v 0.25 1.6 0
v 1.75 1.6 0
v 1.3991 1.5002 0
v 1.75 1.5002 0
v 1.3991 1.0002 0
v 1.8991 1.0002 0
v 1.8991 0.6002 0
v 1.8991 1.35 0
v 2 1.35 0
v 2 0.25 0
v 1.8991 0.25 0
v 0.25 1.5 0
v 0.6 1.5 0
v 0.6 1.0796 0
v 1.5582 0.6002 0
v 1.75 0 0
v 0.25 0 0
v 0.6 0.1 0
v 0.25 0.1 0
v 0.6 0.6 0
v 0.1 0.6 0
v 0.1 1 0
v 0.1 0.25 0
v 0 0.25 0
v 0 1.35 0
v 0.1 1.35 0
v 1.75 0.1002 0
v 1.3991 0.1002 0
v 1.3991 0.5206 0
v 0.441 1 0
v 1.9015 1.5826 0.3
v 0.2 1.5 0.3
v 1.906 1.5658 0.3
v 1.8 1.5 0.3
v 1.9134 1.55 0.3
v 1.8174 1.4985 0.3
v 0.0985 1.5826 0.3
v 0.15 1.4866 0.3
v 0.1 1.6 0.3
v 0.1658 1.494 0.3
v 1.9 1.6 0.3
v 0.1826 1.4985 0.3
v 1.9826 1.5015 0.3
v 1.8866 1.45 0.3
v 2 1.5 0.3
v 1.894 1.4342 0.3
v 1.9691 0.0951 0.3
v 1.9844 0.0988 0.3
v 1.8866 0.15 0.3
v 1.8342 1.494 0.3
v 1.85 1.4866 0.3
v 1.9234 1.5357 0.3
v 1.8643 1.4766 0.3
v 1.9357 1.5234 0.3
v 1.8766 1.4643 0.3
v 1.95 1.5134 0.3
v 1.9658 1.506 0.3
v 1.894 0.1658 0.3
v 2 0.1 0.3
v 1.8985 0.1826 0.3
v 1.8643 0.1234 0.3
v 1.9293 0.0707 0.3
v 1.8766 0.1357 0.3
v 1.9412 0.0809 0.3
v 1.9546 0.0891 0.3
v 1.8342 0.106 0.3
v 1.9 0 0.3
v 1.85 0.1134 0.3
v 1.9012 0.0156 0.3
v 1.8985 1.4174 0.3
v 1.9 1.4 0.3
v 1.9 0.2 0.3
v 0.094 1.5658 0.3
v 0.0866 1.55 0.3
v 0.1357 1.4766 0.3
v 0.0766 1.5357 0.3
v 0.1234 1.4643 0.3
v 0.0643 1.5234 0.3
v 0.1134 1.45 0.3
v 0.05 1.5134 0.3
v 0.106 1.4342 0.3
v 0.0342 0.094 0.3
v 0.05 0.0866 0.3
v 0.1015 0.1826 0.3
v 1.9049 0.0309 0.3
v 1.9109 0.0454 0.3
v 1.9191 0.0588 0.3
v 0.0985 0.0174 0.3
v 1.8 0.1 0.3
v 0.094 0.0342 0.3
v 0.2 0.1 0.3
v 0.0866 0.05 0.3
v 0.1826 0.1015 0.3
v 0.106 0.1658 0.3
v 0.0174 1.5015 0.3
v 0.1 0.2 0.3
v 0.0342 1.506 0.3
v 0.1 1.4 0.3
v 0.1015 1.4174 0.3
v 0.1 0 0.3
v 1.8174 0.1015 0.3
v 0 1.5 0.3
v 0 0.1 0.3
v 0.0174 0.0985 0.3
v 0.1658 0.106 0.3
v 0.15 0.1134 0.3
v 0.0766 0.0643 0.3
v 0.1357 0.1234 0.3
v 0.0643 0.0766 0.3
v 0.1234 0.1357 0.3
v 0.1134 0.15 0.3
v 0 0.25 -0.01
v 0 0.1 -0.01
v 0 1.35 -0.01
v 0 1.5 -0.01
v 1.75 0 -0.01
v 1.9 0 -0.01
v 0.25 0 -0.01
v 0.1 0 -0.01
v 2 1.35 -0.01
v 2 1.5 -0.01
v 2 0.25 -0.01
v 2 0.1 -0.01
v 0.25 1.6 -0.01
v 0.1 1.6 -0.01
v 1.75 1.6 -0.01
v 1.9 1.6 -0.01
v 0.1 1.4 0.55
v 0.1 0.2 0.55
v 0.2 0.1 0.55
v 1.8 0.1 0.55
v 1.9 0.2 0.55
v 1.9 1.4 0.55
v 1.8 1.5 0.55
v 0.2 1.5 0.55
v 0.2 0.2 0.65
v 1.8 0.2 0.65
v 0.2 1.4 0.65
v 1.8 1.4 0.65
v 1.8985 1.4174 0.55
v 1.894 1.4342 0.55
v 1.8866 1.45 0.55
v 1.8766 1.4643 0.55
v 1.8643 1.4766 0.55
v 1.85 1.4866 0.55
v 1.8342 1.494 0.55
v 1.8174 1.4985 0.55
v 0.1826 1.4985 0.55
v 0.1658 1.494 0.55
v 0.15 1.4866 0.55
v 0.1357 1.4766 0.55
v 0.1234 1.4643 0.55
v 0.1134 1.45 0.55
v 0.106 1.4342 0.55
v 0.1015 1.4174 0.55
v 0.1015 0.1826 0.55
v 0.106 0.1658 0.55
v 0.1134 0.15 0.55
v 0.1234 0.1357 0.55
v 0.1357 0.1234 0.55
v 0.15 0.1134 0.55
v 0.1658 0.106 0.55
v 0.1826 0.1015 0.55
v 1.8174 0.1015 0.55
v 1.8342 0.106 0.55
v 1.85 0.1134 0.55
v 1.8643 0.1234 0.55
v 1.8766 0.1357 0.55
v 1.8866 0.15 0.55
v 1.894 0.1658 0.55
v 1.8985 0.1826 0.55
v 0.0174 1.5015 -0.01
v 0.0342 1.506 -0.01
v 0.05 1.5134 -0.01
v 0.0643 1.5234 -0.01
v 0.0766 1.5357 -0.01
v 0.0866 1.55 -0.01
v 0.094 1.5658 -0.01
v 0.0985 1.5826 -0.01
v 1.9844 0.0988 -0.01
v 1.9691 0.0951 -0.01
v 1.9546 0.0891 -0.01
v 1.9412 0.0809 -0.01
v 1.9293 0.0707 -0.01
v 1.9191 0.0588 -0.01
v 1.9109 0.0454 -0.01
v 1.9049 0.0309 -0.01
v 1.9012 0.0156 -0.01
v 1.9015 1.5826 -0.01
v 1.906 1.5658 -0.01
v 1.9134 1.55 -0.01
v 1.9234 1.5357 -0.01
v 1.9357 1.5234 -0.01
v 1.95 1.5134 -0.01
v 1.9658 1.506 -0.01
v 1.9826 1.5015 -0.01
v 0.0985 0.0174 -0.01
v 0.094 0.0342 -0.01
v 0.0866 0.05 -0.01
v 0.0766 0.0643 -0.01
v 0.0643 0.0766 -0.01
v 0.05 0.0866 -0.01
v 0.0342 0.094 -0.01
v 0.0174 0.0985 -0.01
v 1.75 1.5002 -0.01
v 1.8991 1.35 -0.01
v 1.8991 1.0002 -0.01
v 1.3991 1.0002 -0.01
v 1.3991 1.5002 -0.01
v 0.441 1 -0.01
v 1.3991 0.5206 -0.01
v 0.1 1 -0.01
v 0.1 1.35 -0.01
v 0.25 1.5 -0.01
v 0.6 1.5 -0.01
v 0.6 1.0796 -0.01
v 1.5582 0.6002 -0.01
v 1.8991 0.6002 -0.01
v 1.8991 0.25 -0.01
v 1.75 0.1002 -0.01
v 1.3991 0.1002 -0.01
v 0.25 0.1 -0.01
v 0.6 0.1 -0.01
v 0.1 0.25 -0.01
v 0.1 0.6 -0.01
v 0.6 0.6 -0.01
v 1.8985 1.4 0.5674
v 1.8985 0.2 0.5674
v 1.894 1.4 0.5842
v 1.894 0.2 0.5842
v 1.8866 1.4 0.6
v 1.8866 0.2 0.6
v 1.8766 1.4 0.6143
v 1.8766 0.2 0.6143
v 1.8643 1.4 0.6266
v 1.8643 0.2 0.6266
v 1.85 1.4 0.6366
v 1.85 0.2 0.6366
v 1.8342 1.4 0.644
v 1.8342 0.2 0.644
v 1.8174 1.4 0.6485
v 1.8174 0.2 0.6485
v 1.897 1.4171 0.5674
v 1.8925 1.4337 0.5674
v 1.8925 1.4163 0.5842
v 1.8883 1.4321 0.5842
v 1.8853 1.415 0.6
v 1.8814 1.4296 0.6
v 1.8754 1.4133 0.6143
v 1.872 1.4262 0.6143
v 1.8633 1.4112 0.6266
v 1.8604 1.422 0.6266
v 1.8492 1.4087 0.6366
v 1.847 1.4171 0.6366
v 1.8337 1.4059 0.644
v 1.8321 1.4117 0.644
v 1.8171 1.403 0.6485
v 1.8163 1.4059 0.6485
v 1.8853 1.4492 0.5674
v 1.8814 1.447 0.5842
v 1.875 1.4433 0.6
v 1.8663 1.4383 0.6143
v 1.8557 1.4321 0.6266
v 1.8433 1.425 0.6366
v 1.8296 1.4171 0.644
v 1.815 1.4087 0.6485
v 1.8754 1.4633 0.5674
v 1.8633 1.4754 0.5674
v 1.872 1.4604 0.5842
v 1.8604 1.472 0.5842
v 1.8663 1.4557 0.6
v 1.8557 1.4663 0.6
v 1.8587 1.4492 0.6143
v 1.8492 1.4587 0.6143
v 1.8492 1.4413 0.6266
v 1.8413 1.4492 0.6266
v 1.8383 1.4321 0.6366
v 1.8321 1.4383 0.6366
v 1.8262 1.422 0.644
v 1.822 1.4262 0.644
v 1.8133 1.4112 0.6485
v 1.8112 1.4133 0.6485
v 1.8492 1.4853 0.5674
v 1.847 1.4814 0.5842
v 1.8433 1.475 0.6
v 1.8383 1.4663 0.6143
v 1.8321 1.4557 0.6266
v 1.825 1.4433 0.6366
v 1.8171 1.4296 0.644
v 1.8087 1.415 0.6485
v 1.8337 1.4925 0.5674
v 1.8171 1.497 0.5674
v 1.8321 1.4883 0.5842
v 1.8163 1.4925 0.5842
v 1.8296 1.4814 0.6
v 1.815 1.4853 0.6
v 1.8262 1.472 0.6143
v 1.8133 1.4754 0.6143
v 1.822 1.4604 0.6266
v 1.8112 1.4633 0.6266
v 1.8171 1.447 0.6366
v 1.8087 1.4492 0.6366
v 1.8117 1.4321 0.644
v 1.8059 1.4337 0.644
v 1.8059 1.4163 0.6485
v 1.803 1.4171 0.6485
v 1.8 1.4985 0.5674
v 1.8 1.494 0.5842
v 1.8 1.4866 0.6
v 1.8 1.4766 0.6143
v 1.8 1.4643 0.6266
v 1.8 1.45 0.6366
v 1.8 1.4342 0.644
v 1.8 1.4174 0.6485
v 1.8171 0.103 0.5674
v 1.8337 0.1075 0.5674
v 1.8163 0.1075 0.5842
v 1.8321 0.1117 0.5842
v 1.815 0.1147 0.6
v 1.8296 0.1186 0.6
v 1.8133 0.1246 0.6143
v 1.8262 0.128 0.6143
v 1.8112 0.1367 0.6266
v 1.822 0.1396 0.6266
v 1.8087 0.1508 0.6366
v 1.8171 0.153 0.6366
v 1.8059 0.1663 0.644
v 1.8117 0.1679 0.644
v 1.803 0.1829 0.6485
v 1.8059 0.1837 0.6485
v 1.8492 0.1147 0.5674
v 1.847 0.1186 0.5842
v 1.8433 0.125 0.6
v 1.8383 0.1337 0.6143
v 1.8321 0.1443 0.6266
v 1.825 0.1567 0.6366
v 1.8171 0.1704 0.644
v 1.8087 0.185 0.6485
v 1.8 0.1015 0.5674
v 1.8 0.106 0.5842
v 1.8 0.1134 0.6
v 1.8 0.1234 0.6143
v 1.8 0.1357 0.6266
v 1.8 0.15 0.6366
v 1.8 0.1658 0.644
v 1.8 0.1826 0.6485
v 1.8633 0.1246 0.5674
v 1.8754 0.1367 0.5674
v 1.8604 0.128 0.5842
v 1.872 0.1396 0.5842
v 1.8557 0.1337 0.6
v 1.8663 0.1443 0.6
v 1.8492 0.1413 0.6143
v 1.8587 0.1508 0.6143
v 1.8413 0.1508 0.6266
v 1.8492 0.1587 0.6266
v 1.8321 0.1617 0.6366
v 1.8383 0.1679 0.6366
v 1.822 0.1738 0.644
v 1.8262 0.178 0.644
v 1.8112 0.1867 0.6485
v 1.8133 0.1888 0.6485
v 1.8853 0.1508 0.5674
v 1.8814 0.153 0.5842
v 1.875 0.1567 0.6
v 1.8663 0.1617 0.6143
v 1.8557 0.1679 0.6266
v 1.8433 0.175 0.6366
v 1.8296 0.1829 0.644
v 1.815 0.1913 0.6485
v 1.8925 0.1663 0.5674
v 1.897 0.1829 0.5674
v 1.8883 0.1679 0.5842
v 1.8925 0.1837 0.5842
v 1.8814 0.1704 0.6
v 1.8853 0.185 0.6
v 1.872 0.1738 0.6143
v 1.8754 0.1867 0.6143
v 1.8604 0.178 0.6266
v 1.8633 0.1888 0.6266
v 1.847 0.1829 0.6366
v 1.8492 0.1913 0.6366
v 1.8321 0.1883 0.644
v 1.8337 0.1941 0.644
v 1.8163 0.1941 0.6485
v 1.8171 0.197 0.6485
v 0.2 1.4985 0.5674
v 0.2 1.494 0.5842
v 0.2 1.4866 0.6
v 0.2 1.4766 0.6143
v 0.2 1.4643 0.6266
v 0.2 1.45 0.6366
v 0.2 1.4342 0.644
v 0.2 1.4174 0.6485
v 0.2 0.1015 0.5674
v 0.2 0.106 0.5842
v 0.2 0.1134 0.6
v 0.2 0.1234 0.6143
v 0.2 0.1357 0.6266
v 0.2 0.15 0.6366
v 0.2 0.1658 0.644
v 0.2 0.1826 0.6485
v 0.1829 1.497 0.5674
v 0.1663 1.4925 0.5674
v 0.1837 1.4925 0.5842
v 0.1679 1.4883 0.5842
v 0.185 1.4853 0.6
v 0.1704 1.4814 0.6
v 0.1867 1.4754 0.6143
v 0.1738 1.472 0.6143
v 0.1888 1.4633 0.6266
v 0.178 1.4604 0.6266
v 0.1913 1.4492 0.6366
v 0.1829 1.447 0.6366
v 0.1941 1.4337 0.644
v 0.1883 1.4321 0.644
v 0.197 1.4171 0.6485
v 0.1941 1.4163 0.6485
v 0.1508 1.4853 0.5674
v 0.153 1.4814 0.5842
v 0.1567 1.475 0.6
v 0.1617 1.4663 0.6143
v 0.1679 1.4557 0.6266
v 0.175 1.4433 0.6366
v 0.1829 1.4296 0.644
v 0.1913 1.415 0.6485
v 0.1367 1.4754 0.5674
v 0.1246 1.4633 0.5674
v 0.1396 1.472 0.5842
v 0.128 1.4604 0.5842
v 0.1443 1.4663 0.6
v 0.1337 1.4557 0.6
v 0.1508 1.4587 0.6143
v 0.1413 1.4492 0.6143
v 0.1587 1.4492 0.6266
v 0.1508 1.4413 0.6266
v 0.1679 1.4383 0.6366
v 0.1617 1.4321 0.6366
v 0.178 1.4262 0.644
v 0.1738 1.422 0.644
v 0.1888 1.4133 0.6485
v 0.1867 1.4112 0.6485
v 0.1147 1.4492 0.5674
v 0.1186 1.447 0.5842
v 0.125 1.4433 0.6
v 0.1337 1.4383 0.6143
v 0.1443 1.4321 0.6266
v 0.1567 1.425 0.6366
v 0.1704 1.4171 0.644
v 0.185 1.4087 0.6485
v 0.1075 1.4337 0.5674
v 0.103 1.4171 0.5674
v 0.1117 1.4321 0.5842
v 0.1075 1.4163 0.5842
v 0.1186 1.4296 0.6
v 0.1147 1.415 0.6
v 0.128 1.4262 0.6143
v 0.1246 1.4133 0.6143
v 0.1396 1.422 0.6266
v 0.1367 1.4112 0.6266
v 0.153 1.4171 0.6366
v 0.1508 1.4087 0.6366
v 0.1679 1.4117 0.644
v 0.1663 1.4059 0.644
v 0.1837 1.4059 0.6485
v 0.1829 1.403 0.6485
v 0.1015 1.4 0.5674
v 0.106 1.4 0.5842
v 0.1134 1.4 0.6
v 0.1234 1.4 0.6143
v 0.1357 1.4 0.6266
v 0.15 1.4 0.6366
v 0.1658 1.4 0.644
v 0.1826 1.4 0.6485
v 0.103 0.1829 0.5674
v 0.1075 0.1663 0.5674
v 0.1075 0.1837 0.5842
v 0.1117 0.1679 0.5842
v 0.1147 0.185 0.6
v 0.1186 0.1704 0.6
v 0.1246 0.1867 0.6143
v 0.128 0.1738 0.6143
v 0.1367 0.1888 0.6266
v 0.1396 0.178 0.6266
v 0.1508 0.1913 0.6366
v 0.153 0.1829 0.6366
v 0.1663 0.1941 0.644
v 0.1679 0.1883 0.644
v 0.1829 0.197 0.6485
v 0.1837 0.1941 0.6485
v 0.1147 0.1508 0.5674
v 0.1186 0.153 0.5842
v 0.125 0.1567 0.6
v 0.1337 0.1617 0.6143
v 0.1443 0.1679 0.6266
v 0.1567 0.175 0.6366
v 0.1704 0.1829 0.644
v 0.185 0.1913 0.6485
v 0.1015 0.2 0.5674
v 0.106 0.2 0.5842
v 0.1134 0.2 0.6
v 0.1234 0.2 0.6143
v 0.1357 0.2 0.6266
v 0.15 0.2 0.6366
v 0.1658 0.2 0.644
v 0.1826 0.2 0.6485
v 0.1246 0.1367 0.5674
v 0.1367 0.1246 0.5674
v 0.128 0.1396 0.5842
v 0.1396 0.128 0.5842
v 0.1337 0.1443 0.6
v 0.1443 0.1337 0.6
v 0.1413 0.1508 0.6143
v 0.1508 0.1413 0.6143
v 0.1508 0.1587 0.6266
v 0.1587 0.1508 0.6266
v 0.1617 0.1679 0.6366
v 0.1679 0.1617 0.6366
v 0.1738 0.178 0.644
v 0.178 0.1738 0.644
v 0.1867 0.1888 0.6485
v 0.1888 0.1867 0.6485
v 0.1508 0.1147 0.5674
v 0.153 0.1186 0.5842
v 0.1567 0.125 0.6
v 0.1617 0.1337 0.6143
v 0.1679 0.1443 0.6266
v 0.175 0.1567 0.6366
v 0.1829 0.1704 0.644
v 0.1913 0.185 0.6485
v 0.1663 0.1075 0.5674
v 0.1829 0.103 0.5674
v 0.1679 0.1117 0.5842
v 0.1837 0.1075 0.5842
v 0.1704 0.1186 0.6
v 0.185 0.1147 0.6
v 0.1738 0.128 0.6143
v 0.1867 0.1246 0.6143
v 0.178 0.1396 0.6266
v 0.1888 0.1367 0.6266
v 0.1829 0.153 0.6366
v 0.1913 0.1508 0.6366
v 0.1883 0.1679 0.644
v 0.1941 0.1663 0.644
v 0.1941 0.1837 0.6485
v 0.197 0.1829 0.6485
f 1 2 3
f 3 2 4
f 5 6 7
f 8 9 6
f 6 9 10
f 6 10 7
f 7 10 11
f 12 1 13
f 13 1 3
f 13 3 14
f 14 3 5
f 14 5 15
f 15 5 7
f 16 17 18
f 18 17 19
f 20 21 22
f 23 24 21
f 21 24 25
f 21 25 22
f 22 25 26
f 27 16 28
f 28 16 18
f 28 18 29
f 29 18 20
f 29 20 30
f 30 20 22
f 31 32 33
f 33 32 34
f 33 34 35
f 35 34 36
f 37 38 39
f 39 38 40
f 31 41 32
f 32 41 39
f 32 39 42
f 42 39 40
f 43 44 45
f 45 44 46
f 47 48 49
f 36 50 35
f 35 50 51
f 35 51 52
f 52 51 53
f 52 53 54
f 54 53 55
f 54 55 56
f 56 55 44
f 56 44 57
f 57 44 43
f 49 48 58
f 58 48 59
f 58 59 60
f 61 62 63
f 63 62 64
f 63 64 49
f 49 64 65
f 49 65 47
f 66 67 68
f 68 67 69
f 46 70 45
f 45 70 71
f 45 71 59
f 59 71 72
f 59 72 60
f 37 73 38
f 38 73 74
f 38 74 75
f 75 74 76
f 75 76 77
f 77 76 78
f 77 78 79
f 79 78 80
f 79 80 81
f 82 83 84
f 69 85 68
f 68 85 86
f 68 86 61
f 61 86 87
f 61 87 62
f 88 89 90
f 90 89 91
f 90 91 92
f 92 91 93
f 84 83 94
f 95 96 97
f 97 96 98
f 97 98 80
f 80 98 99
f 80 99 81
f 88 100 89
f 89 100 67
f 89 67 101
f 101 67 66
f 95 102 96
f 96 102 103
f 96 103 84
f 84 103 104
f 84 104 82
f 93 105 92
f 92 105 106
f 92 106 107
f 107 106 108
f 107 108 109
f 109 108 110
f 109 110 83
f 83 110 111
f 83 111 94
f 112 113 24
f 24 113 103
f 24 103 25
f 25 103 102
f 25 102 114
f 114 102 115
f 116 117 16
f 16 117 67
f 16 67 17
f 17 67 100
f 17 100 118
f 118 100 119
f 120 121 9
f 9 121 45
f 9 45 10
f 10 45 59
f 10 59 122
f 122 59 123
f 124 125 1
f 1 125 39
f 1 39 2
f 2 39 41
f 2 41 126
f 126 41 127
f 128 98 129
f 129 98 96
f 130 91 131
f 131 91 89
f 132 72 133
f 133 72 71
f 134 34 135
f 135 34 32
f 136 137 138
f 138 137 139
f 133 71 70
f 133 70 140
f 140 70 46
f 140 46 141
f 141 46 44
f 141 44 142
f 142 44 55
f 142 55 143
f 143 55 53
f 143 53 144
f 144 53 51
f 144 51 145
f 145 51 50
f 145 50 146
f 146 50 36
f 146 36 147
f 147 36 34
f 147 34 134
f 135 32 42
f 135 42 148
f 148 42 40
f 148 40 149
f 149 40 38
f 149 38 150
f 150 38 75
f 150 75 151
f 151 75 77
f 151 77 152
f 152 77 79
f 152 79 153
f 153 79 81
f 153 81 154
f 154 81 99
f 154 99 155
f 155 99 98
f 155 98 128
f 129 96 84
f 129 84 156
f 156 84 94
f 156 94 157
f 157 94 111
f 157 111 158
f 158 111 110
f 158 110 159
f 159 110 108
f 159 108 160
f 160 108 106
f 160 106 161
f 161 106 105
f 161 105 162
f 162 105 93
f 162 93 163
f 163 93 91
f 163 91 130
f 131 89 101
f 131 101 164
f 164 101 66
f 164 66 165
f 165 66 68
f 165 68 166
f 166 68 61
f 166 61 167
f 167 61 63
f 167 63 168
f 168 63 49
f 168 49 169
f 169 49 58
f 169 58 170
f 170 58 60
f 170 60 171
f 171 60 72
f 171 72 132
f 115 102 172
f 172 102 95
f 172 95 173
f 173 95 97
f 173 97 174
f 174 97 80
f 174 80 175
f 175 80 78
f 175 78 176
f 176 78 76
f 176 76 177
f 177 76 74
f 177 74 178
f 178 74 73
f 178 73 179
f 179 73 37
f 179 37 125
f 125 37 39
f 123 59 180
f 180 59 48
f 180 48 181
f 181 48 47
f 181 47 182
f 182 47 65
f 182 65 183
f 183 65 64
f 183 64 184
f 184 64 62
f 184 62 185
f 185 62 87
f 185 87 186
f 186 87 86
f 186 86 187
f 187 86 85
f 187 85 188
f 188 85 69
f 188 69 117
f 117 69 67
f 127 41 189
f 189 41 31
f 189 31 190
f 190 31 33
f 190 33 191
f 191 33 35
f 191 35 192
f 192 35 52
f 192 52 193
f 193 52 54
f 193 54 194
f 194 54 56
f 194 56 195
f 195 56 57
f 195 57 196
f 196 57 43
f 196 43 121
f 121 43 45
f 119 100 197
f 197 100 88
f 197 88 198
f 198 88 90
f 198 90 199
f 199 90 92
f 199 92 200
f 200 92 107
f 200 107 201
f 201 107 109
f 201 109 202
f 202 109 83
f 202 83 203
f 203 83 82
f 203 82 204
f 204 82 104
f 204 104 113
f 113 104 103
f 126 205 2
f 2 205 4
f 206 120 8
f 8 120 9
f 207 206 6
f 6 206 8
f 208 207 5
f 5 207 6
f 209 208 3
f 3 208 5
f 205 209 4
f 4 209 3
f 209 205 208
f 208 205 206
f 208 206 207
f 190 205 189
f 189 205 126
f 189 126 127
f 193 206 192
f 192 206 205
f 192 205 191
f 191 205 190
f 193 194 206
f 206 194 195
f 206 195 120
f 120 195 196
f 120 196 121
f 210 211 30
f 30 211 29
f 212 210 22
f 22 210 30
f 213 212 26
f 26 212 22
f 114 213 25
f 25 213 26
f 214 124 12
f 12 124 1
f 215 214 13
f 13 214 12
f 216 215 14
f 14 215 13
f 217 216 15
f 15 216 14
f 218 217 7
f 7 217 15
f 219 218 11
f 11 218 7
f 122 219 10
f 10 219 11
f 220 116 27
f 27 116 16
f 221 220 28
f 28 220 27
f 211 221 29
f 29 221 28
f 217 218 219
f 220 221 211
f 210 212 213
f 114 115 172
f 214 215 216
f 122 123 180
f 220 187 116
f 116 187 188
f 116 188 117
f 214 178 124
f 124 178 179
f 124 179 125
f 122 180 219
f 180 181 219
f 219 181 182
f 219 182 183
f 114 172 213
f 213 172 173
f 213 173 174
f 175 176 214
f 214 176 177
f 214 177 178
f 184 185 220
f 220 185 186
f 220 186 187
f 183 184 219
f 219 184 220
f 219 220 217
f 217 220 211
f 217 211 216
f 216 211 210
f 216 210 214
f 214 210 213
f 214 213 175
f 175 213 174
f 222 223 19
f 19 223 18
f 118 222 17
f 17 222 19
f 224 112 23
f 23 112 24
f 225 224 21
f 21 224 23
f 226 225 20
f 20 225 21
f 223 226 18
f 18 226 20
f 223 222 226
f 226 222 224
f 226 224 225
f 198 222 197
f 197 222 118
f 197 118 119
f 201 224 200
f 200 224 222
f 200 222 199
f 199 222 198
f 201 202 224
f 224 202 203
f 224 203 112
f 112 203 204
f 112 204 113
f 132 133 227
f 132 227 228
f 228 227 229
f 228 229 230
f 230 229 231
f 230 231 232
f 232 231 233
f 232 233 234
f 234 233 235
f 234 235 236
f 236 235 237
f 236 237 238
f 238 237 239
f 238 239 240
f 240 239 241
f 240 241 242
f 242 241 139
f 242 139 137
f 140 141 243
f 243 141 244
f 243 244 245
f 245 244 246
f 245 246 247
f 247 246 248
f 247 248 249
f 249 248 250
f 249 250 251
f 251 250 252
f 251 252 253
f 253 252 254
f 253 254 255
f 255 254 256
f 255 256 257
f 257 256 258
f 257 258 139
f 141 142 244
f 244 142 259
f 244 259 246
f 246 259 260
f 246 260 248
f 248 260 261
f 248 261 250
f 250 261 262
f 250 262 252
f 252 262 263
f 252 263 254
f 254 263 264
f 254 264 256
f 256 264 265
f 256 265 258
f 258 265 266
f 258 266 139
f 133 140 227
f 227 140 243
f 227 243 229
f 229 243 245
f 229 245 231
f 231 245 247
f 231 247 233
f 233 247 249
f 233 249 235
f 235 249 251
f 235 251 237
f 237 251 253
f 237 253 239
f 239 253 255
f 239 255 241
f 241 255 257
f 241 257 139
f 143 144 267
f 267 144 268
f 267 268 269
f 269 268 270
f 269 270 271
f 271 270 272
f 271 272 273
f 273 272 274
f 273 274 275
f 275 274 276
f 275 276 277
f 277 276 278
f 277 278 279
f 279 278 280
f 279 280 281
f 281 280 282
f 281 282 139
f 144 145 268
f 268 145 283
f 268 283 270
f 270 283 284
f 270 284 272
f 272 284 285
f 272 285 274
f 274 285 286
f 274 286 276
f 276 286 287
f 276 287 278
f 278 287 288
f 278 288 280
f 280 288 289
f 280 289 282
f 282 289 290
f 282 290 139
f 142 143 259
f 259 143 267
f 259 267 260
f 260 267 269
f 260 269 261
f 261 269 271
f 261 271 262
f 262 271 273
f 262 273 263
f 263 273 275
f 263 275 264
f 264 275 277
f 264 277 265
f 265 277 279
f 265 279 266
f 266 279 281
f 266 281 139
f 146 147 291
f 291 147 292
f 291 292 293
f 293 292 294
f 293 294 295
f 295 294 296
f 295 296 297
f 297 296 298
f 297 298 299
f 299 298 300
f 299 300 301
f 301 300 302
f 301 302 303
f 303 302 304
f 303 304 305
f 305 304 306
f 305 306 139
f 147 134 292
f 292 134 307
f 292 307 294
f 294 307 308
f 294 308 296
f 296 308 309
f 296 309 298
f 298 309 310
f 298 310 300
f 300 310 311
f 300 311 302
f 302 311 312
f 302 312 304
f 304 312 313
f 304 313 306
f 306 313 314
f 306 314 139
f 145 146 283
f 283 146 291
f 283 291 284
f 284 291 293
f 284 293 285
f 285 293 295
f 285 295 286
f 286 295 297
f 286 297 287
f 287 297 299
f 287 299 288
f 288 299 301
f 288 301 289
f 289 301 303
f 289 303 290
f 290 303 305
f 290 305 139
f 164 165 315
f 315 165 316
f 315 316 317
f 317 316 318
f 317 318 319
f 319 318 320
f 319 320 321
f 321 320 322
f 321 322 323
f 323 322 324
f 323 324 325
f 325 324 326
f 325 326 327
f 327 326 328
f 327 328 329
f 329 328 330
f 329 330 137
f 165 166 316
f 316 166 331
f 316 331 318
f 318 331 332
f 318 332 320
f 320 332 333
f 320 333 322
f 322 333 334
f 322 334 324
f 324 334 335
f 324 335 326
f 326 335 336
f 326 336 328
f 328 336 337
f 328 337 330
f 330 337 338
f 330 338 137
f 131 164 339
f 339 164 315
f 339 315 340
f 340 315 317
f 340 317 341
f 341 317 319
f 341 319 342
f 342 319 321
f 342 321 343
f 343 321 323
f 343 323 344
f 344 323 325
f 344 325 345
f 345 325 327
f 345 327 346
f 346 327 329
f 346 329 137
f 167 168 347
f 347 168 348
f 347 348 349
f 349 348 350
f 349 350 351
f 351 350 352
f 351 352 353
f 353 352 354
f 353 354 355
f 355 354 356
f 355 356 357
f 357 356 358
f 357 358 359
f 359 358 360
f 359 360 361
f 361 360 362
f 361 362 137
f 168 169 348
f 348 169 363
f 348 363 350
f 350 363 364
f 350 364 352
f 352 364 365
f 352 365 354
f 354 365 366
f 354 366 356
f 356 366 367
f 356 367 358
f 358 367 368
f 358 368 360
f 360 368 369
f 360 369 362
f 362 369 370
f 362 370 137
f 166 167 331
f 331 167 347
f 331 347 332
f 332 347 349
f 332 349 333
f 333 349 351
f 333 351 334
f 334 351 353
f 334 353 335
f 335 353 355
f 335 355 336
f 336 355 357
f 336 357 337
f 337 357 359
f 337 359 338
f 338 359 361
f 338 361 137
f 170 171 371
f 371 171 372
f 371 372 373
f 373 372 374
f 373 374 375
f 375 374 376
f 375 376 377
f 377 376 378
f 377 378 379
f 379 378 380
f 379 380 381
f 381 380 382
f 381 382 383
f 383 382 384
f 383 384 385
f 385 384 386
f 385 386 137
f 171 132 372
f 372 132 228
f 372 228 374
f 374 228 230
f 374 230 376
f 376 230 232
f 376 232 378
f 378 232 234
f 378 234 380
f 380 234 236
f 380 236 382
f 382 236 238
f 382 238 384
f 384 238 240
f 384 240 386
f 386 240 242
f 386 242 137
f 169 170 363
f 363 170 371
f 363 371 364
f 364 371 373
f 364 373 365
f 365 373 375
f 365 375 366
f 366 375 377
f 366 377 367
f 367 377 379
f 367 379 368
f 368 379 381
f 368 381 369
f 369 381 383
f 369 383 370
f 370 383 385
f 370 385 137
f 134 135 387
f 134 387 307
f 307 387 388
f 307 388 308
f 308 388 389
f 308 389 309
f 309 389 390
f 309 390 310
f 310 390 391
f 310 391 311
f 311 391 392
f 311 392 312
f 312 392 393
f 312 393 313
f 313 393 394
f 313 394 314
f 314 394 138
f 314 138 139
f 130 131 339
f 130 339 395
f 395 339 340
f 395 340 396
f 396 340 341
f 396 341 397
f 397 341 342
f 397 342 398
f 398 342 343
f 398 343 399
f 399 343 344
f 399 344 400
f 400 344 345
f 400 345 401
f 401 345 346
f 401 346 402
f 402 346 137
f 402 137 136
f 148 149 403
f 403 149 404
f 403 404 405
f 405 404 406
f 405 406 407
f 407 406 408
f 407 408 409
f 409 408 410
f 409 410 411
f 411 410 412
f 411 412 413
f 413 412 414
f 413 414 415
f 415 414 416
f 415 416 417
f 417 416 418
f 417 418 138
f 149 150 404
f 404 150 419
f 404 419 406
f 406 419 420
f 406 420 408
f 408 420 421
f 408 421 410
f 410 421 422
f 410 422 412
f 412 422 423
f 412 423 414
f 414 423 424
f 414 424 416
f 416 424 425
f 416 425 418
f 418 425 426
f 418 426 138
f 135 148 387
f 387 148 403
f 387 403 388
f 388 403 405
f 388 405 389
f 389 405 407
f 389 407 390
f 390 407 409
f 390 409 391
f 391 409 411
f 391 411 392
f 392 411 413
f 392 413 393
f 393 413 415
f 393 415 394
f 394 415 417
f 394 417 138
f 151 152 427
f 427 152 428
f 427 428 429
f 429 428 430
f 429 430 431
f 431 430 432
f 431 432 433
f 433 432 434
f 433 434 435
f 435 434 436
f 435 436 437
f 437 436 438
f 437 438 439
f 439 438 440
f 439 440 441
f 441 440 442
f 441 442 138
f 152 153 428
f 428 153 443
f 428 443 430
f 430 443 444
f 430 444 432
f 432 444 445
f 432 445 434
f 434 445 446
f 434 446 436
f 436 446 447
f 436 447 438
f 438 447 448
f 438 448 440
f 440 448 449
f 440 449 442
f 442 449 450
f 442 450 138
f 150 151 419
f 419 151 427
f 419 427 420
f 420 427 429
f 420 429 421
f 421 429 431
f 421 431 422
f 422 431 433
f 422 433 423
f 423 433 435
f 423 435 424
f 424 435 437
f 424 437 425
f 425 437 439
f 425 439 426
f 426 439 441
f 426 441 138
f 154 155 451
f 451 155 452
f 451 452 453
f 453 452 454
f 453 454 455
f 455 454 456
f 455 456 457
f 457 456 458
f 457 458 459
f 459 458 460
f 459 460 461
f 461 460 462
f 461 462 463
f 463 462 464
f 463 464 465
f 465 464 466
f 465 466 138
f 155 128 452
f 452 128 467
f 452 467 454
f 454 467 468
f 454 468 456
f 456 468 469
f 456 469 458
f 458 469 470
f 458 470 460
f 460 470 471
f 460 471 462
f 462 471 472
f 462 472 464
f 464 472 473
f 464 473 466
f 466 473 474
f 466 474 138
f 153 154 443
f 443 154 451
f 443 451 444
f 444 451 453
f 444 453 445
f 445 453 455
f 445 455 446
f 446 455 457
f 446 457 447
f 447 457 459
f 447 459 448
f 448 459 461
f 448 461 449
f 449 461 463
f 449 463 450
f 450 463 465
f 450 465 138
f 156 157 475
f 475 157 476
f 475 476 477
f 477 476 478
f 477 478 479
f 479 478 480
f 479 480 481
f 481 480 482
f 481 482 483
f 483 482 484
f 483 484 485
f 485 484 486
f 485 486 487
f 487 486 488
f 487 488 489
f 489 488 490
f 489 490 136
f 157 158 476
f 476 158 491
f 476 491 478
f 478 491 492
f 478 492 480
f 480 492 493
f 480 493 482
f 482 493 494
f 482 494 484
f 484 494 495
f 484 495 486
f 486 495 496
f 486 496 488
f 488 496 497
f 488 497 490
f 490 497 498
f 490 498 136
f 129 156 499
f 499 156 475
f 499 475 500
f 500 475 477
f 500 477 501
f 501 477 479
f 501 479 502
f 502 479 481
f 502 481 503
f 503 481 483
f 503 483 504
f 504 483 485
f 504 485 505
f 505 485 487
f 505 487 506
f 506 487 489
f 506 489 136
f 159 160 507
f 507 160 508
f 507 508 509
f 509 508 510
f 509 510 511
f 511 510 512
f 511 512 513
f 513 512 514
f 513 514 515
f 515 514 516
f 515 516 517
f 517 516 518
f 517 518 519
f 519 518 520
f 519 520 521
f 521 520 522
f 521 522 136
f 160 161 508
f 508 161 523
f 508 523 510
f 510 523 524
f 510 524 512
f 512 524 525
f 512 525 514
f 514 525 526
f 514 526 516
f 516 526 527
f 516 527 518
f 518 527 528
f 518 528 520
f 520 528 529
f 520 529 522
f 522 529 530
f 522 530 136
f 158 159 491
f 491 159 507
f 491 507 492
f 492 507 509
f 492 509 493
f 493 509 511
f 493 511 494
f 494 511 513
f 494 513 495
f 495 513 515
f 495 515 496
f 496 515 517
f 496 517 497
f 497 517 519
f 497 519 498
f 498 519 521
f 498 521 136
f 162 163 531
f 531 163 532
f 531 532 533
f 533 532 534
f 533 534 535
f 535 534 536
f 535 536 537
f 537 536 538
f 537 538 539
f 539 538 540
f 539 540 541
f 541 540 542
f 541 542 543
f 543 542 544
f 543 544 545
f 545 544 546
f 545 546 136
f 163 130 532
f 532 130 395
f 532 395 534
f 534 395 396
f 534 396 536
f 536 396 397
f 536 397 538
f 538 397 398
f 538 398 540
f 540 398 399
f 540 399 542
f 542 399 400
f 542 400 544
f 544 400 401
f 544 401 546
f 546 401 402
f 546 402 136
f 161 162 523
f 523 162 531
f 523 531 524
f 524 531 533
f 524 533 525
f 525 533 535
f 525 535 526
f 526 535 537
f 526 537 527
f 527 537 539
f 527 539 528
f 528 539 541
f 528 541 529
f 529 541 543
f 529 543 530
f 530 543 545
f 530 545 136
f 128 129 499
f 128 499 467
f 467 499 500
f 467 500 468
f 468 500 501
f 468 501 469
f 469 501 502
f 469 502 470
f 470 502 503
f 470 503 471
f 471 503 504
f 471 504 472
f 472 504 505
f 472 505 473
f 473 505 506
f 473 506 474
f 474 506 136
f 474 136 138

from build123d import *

# Parameters (mm, degrees)
SKETCH1_W           = 2
SKETCH1_H           = 1.6
BOSS_EXTRUDE1_DEPTH = 0.3
SKETCH2_W           = 1.8
SKETCH2_H           = 1.4
BOSS_EXTRUDE2_DEPTH = 0.35
FILLET1_R           = 0.1
CUT_EXTRUDE1_DEPTH  = 1.3
SKETCH4_W           = 0.5
SKETCH4_H           = 0.5
BOSS_EXTRUDE3_DEPTH = 0.01
FILLET2_R           = 0.1


with BuildPart() as part:
    # Sketch1 → Boss-Extrude1 (new body)
    with BuildSketch(Plane.XY):
        with Locations((1, 0.8)):
            Rectangle(SKETCH1_W, SKETCH1_H)
    extrude(amount=BOSS_EXTRUDE1_DEPTH)

    # Sketch2 → Boss-Extrude2 (add)
    with BuildSketch(Plane.XY.offset(0.3)):
        with Locations((1, 0.8)):
            Rectangle(SKETCH2_W, SKETCH2_H)
    extrude(amount=BOSS_EXTRUDE2_DEPTH)

    # Fillet1
    fillet1_edges = [part.edges().sort_by_distance(p)[0] for p in [
        (0.1, 1.5, 0.475),
        (0.1, 0.1, 0.475),
        (1.9, 0.1, 0.475),
        (1.9, 1.5, 0.475),
    ]]
    fillet(fillet1_edges, radius=FILLET1_R)

    # Sketch3 → Cut-Extrude1 (cut, through all)
    with BuildSketch(Plane.XY.offset(0.3)):
        with BuildLine():
            Line((0, 1.6), (0.1, 1.6))
            ThreePointArc((0.1, 1.6), (0.070710678, 1.529289322), (0, 1.5))
            Line((0, 1.5), (0, 1.6))
        make_face()
        with BuildLine():
            Line((0, 0), (0, 0.1))
            ThreePointArc((0, 0.1), (0.070710678, 0.070710678), (0.1, 0))
            Line((0.1, 0), (0, 0))
        make_face()
        with BuildLine():
            Line((2, 1.6), (1.9, 1.6))
            ThreePointArc((1.9, 1.6), (1.929289322, 1.529289322), (2, 1.5))
            Line((2, 1.5), (2, 1.6))
        make_face()
        with BuildLine():
            Line((2, 0), (2, 0.1))
            ThreePointArc((2, 0.1), (1.929289322, 0.070710678), (1.9, 0))
            Line((1.9, 0), (2, 0))
        make_face()
    extrude(amount=-CUT_EXTRUDE1_DEPTH, mode=Mode.SUBTRACT)

    # Sketch4 → Boss-Extrude3 (add)
    with BuildSketch(Plane(origin=(0, 0, 0), x_dir=(-1, 0, 0), z_dir=(0, 0, -1))):
        with BuildLine():
            Line((-2, 1.5), (-2, 1.35))
            Line((-2, 1.35), (-1.899114856, 1.35))
            Line((-1.899114856, 1.35), (-1.899114856, 1.500209267))
            Line((-1.899114856, 1.500209267), (-1.75, 1.500209267))
            Line((-1.75, 1.500209267), (-1.75, 1.6))
            Line((-1.75, 1.6), (-1.9, 1.6))
            ThreePointArc((-1.9, 1.6), (-1.929289322, 1.529289322), (-2, 1.5))
        make_face()
        with Locations((-1.649114856, 1.250209267)):
            Rectangle(SKETCH4_W, SKETCH4_H)
        with Locations((-1.649114856, 0.350209267)):
            Rectangle(SKETCH4_W, SKETCH4_H)
        with BuildLine():
            Line((-1.899114856, 0.25), (-2, 0.25))
            Line((-2, 0.25), (-2, 0.1))
            ThreePointArc((-2, 0.1), (-1.929289322, 0.070710678), (-1.9, 0))
            Line((-1.9, 0), (-1.75, 0))
            Line((-1.75, 0), (-1.75, 0.100209267))
            Line((-1.75, 0.100209267), (-1.899114856, 0.100209267))
            Line((-1.899114856, 0.100209267), (-1.899114856, 0.25))
        make_face()
        Polygon((-1.452147865, 0.653242275), (-1.558151985, 0.600209267), (-1.399114856, 0.600209267), (-1.399114856, 0.520644271), (-1.346081848, 0.547176258), (-0.546966991, 0.946966991), (-0.440962871, 1), (-0.6, 1), (-0.6, 1.079564996), (-0.653033009, 1.053033009), align=None)
        with Locations((-0.35, 0.35)):
            Rectangle(SKETCH4_W, SKETCH4_H)
        with Locations((-0.35, 1.25)):
            Rectangle(SKETCH4_W, SKETCH4_H)
        with BuildLine():
            Line((-0.1, 1.6), (-0.25, 1.6))
            Line((-0.25, 1.6), (-0.25, 1.5))
            Line((-0.25, 1.5), (-0.1, 1.5))
            Line((-0.1, 1.5), (-0.1, 1.35))
            Line((-0.1, 1.35), (0, 1.35))
            Line((0, 1.35), (0, 1.5))
            ThreePointArc((0, 1.5), (-0.070710678, 1.529289322), (-0.1, 1.6))
        make_face()
        with BuildLine():
            Line((-0.25, 0.1), (-0.25, 0))
            Line((-0.25, 0), (-0.1, 0))
            ThreePointArc((-0.1, 0), (-0.070710678, 0.070710678), (0, 0.1))
            Line((0, 0.1), (0, 0.25))
            Line((0, 0.25), (-0.1, 0.25))
            Line((-0.1, 0.25), (-0.1, 0.1))
            Line((-0.1, 0.1), (-0.25, 0.1))
        make_face()
    extrude(amount=BOSS_EXTRUDE3_DEPTH)

    # Fillet2
    fillet2_edges = [part.edges().sort_by_distance(p)[0] for p in [
        (1, 1.5, 0.65),
        (1.9, 0.8, 0.65),
        (0.1, 0.8, 0.65),
        (1, 0.1, 0.65),
        (1.870710678, 0.129289322, 0.65),
        (0.129289322, 0.129289322, 0.65),
        (0.129289322, 1.470710678, 0.65),
        (1.870710678, 1.470710678, 0.65),
    ]]
    fillet(fillet2_edges, radius=FILLET2_R)


solid = part.part
